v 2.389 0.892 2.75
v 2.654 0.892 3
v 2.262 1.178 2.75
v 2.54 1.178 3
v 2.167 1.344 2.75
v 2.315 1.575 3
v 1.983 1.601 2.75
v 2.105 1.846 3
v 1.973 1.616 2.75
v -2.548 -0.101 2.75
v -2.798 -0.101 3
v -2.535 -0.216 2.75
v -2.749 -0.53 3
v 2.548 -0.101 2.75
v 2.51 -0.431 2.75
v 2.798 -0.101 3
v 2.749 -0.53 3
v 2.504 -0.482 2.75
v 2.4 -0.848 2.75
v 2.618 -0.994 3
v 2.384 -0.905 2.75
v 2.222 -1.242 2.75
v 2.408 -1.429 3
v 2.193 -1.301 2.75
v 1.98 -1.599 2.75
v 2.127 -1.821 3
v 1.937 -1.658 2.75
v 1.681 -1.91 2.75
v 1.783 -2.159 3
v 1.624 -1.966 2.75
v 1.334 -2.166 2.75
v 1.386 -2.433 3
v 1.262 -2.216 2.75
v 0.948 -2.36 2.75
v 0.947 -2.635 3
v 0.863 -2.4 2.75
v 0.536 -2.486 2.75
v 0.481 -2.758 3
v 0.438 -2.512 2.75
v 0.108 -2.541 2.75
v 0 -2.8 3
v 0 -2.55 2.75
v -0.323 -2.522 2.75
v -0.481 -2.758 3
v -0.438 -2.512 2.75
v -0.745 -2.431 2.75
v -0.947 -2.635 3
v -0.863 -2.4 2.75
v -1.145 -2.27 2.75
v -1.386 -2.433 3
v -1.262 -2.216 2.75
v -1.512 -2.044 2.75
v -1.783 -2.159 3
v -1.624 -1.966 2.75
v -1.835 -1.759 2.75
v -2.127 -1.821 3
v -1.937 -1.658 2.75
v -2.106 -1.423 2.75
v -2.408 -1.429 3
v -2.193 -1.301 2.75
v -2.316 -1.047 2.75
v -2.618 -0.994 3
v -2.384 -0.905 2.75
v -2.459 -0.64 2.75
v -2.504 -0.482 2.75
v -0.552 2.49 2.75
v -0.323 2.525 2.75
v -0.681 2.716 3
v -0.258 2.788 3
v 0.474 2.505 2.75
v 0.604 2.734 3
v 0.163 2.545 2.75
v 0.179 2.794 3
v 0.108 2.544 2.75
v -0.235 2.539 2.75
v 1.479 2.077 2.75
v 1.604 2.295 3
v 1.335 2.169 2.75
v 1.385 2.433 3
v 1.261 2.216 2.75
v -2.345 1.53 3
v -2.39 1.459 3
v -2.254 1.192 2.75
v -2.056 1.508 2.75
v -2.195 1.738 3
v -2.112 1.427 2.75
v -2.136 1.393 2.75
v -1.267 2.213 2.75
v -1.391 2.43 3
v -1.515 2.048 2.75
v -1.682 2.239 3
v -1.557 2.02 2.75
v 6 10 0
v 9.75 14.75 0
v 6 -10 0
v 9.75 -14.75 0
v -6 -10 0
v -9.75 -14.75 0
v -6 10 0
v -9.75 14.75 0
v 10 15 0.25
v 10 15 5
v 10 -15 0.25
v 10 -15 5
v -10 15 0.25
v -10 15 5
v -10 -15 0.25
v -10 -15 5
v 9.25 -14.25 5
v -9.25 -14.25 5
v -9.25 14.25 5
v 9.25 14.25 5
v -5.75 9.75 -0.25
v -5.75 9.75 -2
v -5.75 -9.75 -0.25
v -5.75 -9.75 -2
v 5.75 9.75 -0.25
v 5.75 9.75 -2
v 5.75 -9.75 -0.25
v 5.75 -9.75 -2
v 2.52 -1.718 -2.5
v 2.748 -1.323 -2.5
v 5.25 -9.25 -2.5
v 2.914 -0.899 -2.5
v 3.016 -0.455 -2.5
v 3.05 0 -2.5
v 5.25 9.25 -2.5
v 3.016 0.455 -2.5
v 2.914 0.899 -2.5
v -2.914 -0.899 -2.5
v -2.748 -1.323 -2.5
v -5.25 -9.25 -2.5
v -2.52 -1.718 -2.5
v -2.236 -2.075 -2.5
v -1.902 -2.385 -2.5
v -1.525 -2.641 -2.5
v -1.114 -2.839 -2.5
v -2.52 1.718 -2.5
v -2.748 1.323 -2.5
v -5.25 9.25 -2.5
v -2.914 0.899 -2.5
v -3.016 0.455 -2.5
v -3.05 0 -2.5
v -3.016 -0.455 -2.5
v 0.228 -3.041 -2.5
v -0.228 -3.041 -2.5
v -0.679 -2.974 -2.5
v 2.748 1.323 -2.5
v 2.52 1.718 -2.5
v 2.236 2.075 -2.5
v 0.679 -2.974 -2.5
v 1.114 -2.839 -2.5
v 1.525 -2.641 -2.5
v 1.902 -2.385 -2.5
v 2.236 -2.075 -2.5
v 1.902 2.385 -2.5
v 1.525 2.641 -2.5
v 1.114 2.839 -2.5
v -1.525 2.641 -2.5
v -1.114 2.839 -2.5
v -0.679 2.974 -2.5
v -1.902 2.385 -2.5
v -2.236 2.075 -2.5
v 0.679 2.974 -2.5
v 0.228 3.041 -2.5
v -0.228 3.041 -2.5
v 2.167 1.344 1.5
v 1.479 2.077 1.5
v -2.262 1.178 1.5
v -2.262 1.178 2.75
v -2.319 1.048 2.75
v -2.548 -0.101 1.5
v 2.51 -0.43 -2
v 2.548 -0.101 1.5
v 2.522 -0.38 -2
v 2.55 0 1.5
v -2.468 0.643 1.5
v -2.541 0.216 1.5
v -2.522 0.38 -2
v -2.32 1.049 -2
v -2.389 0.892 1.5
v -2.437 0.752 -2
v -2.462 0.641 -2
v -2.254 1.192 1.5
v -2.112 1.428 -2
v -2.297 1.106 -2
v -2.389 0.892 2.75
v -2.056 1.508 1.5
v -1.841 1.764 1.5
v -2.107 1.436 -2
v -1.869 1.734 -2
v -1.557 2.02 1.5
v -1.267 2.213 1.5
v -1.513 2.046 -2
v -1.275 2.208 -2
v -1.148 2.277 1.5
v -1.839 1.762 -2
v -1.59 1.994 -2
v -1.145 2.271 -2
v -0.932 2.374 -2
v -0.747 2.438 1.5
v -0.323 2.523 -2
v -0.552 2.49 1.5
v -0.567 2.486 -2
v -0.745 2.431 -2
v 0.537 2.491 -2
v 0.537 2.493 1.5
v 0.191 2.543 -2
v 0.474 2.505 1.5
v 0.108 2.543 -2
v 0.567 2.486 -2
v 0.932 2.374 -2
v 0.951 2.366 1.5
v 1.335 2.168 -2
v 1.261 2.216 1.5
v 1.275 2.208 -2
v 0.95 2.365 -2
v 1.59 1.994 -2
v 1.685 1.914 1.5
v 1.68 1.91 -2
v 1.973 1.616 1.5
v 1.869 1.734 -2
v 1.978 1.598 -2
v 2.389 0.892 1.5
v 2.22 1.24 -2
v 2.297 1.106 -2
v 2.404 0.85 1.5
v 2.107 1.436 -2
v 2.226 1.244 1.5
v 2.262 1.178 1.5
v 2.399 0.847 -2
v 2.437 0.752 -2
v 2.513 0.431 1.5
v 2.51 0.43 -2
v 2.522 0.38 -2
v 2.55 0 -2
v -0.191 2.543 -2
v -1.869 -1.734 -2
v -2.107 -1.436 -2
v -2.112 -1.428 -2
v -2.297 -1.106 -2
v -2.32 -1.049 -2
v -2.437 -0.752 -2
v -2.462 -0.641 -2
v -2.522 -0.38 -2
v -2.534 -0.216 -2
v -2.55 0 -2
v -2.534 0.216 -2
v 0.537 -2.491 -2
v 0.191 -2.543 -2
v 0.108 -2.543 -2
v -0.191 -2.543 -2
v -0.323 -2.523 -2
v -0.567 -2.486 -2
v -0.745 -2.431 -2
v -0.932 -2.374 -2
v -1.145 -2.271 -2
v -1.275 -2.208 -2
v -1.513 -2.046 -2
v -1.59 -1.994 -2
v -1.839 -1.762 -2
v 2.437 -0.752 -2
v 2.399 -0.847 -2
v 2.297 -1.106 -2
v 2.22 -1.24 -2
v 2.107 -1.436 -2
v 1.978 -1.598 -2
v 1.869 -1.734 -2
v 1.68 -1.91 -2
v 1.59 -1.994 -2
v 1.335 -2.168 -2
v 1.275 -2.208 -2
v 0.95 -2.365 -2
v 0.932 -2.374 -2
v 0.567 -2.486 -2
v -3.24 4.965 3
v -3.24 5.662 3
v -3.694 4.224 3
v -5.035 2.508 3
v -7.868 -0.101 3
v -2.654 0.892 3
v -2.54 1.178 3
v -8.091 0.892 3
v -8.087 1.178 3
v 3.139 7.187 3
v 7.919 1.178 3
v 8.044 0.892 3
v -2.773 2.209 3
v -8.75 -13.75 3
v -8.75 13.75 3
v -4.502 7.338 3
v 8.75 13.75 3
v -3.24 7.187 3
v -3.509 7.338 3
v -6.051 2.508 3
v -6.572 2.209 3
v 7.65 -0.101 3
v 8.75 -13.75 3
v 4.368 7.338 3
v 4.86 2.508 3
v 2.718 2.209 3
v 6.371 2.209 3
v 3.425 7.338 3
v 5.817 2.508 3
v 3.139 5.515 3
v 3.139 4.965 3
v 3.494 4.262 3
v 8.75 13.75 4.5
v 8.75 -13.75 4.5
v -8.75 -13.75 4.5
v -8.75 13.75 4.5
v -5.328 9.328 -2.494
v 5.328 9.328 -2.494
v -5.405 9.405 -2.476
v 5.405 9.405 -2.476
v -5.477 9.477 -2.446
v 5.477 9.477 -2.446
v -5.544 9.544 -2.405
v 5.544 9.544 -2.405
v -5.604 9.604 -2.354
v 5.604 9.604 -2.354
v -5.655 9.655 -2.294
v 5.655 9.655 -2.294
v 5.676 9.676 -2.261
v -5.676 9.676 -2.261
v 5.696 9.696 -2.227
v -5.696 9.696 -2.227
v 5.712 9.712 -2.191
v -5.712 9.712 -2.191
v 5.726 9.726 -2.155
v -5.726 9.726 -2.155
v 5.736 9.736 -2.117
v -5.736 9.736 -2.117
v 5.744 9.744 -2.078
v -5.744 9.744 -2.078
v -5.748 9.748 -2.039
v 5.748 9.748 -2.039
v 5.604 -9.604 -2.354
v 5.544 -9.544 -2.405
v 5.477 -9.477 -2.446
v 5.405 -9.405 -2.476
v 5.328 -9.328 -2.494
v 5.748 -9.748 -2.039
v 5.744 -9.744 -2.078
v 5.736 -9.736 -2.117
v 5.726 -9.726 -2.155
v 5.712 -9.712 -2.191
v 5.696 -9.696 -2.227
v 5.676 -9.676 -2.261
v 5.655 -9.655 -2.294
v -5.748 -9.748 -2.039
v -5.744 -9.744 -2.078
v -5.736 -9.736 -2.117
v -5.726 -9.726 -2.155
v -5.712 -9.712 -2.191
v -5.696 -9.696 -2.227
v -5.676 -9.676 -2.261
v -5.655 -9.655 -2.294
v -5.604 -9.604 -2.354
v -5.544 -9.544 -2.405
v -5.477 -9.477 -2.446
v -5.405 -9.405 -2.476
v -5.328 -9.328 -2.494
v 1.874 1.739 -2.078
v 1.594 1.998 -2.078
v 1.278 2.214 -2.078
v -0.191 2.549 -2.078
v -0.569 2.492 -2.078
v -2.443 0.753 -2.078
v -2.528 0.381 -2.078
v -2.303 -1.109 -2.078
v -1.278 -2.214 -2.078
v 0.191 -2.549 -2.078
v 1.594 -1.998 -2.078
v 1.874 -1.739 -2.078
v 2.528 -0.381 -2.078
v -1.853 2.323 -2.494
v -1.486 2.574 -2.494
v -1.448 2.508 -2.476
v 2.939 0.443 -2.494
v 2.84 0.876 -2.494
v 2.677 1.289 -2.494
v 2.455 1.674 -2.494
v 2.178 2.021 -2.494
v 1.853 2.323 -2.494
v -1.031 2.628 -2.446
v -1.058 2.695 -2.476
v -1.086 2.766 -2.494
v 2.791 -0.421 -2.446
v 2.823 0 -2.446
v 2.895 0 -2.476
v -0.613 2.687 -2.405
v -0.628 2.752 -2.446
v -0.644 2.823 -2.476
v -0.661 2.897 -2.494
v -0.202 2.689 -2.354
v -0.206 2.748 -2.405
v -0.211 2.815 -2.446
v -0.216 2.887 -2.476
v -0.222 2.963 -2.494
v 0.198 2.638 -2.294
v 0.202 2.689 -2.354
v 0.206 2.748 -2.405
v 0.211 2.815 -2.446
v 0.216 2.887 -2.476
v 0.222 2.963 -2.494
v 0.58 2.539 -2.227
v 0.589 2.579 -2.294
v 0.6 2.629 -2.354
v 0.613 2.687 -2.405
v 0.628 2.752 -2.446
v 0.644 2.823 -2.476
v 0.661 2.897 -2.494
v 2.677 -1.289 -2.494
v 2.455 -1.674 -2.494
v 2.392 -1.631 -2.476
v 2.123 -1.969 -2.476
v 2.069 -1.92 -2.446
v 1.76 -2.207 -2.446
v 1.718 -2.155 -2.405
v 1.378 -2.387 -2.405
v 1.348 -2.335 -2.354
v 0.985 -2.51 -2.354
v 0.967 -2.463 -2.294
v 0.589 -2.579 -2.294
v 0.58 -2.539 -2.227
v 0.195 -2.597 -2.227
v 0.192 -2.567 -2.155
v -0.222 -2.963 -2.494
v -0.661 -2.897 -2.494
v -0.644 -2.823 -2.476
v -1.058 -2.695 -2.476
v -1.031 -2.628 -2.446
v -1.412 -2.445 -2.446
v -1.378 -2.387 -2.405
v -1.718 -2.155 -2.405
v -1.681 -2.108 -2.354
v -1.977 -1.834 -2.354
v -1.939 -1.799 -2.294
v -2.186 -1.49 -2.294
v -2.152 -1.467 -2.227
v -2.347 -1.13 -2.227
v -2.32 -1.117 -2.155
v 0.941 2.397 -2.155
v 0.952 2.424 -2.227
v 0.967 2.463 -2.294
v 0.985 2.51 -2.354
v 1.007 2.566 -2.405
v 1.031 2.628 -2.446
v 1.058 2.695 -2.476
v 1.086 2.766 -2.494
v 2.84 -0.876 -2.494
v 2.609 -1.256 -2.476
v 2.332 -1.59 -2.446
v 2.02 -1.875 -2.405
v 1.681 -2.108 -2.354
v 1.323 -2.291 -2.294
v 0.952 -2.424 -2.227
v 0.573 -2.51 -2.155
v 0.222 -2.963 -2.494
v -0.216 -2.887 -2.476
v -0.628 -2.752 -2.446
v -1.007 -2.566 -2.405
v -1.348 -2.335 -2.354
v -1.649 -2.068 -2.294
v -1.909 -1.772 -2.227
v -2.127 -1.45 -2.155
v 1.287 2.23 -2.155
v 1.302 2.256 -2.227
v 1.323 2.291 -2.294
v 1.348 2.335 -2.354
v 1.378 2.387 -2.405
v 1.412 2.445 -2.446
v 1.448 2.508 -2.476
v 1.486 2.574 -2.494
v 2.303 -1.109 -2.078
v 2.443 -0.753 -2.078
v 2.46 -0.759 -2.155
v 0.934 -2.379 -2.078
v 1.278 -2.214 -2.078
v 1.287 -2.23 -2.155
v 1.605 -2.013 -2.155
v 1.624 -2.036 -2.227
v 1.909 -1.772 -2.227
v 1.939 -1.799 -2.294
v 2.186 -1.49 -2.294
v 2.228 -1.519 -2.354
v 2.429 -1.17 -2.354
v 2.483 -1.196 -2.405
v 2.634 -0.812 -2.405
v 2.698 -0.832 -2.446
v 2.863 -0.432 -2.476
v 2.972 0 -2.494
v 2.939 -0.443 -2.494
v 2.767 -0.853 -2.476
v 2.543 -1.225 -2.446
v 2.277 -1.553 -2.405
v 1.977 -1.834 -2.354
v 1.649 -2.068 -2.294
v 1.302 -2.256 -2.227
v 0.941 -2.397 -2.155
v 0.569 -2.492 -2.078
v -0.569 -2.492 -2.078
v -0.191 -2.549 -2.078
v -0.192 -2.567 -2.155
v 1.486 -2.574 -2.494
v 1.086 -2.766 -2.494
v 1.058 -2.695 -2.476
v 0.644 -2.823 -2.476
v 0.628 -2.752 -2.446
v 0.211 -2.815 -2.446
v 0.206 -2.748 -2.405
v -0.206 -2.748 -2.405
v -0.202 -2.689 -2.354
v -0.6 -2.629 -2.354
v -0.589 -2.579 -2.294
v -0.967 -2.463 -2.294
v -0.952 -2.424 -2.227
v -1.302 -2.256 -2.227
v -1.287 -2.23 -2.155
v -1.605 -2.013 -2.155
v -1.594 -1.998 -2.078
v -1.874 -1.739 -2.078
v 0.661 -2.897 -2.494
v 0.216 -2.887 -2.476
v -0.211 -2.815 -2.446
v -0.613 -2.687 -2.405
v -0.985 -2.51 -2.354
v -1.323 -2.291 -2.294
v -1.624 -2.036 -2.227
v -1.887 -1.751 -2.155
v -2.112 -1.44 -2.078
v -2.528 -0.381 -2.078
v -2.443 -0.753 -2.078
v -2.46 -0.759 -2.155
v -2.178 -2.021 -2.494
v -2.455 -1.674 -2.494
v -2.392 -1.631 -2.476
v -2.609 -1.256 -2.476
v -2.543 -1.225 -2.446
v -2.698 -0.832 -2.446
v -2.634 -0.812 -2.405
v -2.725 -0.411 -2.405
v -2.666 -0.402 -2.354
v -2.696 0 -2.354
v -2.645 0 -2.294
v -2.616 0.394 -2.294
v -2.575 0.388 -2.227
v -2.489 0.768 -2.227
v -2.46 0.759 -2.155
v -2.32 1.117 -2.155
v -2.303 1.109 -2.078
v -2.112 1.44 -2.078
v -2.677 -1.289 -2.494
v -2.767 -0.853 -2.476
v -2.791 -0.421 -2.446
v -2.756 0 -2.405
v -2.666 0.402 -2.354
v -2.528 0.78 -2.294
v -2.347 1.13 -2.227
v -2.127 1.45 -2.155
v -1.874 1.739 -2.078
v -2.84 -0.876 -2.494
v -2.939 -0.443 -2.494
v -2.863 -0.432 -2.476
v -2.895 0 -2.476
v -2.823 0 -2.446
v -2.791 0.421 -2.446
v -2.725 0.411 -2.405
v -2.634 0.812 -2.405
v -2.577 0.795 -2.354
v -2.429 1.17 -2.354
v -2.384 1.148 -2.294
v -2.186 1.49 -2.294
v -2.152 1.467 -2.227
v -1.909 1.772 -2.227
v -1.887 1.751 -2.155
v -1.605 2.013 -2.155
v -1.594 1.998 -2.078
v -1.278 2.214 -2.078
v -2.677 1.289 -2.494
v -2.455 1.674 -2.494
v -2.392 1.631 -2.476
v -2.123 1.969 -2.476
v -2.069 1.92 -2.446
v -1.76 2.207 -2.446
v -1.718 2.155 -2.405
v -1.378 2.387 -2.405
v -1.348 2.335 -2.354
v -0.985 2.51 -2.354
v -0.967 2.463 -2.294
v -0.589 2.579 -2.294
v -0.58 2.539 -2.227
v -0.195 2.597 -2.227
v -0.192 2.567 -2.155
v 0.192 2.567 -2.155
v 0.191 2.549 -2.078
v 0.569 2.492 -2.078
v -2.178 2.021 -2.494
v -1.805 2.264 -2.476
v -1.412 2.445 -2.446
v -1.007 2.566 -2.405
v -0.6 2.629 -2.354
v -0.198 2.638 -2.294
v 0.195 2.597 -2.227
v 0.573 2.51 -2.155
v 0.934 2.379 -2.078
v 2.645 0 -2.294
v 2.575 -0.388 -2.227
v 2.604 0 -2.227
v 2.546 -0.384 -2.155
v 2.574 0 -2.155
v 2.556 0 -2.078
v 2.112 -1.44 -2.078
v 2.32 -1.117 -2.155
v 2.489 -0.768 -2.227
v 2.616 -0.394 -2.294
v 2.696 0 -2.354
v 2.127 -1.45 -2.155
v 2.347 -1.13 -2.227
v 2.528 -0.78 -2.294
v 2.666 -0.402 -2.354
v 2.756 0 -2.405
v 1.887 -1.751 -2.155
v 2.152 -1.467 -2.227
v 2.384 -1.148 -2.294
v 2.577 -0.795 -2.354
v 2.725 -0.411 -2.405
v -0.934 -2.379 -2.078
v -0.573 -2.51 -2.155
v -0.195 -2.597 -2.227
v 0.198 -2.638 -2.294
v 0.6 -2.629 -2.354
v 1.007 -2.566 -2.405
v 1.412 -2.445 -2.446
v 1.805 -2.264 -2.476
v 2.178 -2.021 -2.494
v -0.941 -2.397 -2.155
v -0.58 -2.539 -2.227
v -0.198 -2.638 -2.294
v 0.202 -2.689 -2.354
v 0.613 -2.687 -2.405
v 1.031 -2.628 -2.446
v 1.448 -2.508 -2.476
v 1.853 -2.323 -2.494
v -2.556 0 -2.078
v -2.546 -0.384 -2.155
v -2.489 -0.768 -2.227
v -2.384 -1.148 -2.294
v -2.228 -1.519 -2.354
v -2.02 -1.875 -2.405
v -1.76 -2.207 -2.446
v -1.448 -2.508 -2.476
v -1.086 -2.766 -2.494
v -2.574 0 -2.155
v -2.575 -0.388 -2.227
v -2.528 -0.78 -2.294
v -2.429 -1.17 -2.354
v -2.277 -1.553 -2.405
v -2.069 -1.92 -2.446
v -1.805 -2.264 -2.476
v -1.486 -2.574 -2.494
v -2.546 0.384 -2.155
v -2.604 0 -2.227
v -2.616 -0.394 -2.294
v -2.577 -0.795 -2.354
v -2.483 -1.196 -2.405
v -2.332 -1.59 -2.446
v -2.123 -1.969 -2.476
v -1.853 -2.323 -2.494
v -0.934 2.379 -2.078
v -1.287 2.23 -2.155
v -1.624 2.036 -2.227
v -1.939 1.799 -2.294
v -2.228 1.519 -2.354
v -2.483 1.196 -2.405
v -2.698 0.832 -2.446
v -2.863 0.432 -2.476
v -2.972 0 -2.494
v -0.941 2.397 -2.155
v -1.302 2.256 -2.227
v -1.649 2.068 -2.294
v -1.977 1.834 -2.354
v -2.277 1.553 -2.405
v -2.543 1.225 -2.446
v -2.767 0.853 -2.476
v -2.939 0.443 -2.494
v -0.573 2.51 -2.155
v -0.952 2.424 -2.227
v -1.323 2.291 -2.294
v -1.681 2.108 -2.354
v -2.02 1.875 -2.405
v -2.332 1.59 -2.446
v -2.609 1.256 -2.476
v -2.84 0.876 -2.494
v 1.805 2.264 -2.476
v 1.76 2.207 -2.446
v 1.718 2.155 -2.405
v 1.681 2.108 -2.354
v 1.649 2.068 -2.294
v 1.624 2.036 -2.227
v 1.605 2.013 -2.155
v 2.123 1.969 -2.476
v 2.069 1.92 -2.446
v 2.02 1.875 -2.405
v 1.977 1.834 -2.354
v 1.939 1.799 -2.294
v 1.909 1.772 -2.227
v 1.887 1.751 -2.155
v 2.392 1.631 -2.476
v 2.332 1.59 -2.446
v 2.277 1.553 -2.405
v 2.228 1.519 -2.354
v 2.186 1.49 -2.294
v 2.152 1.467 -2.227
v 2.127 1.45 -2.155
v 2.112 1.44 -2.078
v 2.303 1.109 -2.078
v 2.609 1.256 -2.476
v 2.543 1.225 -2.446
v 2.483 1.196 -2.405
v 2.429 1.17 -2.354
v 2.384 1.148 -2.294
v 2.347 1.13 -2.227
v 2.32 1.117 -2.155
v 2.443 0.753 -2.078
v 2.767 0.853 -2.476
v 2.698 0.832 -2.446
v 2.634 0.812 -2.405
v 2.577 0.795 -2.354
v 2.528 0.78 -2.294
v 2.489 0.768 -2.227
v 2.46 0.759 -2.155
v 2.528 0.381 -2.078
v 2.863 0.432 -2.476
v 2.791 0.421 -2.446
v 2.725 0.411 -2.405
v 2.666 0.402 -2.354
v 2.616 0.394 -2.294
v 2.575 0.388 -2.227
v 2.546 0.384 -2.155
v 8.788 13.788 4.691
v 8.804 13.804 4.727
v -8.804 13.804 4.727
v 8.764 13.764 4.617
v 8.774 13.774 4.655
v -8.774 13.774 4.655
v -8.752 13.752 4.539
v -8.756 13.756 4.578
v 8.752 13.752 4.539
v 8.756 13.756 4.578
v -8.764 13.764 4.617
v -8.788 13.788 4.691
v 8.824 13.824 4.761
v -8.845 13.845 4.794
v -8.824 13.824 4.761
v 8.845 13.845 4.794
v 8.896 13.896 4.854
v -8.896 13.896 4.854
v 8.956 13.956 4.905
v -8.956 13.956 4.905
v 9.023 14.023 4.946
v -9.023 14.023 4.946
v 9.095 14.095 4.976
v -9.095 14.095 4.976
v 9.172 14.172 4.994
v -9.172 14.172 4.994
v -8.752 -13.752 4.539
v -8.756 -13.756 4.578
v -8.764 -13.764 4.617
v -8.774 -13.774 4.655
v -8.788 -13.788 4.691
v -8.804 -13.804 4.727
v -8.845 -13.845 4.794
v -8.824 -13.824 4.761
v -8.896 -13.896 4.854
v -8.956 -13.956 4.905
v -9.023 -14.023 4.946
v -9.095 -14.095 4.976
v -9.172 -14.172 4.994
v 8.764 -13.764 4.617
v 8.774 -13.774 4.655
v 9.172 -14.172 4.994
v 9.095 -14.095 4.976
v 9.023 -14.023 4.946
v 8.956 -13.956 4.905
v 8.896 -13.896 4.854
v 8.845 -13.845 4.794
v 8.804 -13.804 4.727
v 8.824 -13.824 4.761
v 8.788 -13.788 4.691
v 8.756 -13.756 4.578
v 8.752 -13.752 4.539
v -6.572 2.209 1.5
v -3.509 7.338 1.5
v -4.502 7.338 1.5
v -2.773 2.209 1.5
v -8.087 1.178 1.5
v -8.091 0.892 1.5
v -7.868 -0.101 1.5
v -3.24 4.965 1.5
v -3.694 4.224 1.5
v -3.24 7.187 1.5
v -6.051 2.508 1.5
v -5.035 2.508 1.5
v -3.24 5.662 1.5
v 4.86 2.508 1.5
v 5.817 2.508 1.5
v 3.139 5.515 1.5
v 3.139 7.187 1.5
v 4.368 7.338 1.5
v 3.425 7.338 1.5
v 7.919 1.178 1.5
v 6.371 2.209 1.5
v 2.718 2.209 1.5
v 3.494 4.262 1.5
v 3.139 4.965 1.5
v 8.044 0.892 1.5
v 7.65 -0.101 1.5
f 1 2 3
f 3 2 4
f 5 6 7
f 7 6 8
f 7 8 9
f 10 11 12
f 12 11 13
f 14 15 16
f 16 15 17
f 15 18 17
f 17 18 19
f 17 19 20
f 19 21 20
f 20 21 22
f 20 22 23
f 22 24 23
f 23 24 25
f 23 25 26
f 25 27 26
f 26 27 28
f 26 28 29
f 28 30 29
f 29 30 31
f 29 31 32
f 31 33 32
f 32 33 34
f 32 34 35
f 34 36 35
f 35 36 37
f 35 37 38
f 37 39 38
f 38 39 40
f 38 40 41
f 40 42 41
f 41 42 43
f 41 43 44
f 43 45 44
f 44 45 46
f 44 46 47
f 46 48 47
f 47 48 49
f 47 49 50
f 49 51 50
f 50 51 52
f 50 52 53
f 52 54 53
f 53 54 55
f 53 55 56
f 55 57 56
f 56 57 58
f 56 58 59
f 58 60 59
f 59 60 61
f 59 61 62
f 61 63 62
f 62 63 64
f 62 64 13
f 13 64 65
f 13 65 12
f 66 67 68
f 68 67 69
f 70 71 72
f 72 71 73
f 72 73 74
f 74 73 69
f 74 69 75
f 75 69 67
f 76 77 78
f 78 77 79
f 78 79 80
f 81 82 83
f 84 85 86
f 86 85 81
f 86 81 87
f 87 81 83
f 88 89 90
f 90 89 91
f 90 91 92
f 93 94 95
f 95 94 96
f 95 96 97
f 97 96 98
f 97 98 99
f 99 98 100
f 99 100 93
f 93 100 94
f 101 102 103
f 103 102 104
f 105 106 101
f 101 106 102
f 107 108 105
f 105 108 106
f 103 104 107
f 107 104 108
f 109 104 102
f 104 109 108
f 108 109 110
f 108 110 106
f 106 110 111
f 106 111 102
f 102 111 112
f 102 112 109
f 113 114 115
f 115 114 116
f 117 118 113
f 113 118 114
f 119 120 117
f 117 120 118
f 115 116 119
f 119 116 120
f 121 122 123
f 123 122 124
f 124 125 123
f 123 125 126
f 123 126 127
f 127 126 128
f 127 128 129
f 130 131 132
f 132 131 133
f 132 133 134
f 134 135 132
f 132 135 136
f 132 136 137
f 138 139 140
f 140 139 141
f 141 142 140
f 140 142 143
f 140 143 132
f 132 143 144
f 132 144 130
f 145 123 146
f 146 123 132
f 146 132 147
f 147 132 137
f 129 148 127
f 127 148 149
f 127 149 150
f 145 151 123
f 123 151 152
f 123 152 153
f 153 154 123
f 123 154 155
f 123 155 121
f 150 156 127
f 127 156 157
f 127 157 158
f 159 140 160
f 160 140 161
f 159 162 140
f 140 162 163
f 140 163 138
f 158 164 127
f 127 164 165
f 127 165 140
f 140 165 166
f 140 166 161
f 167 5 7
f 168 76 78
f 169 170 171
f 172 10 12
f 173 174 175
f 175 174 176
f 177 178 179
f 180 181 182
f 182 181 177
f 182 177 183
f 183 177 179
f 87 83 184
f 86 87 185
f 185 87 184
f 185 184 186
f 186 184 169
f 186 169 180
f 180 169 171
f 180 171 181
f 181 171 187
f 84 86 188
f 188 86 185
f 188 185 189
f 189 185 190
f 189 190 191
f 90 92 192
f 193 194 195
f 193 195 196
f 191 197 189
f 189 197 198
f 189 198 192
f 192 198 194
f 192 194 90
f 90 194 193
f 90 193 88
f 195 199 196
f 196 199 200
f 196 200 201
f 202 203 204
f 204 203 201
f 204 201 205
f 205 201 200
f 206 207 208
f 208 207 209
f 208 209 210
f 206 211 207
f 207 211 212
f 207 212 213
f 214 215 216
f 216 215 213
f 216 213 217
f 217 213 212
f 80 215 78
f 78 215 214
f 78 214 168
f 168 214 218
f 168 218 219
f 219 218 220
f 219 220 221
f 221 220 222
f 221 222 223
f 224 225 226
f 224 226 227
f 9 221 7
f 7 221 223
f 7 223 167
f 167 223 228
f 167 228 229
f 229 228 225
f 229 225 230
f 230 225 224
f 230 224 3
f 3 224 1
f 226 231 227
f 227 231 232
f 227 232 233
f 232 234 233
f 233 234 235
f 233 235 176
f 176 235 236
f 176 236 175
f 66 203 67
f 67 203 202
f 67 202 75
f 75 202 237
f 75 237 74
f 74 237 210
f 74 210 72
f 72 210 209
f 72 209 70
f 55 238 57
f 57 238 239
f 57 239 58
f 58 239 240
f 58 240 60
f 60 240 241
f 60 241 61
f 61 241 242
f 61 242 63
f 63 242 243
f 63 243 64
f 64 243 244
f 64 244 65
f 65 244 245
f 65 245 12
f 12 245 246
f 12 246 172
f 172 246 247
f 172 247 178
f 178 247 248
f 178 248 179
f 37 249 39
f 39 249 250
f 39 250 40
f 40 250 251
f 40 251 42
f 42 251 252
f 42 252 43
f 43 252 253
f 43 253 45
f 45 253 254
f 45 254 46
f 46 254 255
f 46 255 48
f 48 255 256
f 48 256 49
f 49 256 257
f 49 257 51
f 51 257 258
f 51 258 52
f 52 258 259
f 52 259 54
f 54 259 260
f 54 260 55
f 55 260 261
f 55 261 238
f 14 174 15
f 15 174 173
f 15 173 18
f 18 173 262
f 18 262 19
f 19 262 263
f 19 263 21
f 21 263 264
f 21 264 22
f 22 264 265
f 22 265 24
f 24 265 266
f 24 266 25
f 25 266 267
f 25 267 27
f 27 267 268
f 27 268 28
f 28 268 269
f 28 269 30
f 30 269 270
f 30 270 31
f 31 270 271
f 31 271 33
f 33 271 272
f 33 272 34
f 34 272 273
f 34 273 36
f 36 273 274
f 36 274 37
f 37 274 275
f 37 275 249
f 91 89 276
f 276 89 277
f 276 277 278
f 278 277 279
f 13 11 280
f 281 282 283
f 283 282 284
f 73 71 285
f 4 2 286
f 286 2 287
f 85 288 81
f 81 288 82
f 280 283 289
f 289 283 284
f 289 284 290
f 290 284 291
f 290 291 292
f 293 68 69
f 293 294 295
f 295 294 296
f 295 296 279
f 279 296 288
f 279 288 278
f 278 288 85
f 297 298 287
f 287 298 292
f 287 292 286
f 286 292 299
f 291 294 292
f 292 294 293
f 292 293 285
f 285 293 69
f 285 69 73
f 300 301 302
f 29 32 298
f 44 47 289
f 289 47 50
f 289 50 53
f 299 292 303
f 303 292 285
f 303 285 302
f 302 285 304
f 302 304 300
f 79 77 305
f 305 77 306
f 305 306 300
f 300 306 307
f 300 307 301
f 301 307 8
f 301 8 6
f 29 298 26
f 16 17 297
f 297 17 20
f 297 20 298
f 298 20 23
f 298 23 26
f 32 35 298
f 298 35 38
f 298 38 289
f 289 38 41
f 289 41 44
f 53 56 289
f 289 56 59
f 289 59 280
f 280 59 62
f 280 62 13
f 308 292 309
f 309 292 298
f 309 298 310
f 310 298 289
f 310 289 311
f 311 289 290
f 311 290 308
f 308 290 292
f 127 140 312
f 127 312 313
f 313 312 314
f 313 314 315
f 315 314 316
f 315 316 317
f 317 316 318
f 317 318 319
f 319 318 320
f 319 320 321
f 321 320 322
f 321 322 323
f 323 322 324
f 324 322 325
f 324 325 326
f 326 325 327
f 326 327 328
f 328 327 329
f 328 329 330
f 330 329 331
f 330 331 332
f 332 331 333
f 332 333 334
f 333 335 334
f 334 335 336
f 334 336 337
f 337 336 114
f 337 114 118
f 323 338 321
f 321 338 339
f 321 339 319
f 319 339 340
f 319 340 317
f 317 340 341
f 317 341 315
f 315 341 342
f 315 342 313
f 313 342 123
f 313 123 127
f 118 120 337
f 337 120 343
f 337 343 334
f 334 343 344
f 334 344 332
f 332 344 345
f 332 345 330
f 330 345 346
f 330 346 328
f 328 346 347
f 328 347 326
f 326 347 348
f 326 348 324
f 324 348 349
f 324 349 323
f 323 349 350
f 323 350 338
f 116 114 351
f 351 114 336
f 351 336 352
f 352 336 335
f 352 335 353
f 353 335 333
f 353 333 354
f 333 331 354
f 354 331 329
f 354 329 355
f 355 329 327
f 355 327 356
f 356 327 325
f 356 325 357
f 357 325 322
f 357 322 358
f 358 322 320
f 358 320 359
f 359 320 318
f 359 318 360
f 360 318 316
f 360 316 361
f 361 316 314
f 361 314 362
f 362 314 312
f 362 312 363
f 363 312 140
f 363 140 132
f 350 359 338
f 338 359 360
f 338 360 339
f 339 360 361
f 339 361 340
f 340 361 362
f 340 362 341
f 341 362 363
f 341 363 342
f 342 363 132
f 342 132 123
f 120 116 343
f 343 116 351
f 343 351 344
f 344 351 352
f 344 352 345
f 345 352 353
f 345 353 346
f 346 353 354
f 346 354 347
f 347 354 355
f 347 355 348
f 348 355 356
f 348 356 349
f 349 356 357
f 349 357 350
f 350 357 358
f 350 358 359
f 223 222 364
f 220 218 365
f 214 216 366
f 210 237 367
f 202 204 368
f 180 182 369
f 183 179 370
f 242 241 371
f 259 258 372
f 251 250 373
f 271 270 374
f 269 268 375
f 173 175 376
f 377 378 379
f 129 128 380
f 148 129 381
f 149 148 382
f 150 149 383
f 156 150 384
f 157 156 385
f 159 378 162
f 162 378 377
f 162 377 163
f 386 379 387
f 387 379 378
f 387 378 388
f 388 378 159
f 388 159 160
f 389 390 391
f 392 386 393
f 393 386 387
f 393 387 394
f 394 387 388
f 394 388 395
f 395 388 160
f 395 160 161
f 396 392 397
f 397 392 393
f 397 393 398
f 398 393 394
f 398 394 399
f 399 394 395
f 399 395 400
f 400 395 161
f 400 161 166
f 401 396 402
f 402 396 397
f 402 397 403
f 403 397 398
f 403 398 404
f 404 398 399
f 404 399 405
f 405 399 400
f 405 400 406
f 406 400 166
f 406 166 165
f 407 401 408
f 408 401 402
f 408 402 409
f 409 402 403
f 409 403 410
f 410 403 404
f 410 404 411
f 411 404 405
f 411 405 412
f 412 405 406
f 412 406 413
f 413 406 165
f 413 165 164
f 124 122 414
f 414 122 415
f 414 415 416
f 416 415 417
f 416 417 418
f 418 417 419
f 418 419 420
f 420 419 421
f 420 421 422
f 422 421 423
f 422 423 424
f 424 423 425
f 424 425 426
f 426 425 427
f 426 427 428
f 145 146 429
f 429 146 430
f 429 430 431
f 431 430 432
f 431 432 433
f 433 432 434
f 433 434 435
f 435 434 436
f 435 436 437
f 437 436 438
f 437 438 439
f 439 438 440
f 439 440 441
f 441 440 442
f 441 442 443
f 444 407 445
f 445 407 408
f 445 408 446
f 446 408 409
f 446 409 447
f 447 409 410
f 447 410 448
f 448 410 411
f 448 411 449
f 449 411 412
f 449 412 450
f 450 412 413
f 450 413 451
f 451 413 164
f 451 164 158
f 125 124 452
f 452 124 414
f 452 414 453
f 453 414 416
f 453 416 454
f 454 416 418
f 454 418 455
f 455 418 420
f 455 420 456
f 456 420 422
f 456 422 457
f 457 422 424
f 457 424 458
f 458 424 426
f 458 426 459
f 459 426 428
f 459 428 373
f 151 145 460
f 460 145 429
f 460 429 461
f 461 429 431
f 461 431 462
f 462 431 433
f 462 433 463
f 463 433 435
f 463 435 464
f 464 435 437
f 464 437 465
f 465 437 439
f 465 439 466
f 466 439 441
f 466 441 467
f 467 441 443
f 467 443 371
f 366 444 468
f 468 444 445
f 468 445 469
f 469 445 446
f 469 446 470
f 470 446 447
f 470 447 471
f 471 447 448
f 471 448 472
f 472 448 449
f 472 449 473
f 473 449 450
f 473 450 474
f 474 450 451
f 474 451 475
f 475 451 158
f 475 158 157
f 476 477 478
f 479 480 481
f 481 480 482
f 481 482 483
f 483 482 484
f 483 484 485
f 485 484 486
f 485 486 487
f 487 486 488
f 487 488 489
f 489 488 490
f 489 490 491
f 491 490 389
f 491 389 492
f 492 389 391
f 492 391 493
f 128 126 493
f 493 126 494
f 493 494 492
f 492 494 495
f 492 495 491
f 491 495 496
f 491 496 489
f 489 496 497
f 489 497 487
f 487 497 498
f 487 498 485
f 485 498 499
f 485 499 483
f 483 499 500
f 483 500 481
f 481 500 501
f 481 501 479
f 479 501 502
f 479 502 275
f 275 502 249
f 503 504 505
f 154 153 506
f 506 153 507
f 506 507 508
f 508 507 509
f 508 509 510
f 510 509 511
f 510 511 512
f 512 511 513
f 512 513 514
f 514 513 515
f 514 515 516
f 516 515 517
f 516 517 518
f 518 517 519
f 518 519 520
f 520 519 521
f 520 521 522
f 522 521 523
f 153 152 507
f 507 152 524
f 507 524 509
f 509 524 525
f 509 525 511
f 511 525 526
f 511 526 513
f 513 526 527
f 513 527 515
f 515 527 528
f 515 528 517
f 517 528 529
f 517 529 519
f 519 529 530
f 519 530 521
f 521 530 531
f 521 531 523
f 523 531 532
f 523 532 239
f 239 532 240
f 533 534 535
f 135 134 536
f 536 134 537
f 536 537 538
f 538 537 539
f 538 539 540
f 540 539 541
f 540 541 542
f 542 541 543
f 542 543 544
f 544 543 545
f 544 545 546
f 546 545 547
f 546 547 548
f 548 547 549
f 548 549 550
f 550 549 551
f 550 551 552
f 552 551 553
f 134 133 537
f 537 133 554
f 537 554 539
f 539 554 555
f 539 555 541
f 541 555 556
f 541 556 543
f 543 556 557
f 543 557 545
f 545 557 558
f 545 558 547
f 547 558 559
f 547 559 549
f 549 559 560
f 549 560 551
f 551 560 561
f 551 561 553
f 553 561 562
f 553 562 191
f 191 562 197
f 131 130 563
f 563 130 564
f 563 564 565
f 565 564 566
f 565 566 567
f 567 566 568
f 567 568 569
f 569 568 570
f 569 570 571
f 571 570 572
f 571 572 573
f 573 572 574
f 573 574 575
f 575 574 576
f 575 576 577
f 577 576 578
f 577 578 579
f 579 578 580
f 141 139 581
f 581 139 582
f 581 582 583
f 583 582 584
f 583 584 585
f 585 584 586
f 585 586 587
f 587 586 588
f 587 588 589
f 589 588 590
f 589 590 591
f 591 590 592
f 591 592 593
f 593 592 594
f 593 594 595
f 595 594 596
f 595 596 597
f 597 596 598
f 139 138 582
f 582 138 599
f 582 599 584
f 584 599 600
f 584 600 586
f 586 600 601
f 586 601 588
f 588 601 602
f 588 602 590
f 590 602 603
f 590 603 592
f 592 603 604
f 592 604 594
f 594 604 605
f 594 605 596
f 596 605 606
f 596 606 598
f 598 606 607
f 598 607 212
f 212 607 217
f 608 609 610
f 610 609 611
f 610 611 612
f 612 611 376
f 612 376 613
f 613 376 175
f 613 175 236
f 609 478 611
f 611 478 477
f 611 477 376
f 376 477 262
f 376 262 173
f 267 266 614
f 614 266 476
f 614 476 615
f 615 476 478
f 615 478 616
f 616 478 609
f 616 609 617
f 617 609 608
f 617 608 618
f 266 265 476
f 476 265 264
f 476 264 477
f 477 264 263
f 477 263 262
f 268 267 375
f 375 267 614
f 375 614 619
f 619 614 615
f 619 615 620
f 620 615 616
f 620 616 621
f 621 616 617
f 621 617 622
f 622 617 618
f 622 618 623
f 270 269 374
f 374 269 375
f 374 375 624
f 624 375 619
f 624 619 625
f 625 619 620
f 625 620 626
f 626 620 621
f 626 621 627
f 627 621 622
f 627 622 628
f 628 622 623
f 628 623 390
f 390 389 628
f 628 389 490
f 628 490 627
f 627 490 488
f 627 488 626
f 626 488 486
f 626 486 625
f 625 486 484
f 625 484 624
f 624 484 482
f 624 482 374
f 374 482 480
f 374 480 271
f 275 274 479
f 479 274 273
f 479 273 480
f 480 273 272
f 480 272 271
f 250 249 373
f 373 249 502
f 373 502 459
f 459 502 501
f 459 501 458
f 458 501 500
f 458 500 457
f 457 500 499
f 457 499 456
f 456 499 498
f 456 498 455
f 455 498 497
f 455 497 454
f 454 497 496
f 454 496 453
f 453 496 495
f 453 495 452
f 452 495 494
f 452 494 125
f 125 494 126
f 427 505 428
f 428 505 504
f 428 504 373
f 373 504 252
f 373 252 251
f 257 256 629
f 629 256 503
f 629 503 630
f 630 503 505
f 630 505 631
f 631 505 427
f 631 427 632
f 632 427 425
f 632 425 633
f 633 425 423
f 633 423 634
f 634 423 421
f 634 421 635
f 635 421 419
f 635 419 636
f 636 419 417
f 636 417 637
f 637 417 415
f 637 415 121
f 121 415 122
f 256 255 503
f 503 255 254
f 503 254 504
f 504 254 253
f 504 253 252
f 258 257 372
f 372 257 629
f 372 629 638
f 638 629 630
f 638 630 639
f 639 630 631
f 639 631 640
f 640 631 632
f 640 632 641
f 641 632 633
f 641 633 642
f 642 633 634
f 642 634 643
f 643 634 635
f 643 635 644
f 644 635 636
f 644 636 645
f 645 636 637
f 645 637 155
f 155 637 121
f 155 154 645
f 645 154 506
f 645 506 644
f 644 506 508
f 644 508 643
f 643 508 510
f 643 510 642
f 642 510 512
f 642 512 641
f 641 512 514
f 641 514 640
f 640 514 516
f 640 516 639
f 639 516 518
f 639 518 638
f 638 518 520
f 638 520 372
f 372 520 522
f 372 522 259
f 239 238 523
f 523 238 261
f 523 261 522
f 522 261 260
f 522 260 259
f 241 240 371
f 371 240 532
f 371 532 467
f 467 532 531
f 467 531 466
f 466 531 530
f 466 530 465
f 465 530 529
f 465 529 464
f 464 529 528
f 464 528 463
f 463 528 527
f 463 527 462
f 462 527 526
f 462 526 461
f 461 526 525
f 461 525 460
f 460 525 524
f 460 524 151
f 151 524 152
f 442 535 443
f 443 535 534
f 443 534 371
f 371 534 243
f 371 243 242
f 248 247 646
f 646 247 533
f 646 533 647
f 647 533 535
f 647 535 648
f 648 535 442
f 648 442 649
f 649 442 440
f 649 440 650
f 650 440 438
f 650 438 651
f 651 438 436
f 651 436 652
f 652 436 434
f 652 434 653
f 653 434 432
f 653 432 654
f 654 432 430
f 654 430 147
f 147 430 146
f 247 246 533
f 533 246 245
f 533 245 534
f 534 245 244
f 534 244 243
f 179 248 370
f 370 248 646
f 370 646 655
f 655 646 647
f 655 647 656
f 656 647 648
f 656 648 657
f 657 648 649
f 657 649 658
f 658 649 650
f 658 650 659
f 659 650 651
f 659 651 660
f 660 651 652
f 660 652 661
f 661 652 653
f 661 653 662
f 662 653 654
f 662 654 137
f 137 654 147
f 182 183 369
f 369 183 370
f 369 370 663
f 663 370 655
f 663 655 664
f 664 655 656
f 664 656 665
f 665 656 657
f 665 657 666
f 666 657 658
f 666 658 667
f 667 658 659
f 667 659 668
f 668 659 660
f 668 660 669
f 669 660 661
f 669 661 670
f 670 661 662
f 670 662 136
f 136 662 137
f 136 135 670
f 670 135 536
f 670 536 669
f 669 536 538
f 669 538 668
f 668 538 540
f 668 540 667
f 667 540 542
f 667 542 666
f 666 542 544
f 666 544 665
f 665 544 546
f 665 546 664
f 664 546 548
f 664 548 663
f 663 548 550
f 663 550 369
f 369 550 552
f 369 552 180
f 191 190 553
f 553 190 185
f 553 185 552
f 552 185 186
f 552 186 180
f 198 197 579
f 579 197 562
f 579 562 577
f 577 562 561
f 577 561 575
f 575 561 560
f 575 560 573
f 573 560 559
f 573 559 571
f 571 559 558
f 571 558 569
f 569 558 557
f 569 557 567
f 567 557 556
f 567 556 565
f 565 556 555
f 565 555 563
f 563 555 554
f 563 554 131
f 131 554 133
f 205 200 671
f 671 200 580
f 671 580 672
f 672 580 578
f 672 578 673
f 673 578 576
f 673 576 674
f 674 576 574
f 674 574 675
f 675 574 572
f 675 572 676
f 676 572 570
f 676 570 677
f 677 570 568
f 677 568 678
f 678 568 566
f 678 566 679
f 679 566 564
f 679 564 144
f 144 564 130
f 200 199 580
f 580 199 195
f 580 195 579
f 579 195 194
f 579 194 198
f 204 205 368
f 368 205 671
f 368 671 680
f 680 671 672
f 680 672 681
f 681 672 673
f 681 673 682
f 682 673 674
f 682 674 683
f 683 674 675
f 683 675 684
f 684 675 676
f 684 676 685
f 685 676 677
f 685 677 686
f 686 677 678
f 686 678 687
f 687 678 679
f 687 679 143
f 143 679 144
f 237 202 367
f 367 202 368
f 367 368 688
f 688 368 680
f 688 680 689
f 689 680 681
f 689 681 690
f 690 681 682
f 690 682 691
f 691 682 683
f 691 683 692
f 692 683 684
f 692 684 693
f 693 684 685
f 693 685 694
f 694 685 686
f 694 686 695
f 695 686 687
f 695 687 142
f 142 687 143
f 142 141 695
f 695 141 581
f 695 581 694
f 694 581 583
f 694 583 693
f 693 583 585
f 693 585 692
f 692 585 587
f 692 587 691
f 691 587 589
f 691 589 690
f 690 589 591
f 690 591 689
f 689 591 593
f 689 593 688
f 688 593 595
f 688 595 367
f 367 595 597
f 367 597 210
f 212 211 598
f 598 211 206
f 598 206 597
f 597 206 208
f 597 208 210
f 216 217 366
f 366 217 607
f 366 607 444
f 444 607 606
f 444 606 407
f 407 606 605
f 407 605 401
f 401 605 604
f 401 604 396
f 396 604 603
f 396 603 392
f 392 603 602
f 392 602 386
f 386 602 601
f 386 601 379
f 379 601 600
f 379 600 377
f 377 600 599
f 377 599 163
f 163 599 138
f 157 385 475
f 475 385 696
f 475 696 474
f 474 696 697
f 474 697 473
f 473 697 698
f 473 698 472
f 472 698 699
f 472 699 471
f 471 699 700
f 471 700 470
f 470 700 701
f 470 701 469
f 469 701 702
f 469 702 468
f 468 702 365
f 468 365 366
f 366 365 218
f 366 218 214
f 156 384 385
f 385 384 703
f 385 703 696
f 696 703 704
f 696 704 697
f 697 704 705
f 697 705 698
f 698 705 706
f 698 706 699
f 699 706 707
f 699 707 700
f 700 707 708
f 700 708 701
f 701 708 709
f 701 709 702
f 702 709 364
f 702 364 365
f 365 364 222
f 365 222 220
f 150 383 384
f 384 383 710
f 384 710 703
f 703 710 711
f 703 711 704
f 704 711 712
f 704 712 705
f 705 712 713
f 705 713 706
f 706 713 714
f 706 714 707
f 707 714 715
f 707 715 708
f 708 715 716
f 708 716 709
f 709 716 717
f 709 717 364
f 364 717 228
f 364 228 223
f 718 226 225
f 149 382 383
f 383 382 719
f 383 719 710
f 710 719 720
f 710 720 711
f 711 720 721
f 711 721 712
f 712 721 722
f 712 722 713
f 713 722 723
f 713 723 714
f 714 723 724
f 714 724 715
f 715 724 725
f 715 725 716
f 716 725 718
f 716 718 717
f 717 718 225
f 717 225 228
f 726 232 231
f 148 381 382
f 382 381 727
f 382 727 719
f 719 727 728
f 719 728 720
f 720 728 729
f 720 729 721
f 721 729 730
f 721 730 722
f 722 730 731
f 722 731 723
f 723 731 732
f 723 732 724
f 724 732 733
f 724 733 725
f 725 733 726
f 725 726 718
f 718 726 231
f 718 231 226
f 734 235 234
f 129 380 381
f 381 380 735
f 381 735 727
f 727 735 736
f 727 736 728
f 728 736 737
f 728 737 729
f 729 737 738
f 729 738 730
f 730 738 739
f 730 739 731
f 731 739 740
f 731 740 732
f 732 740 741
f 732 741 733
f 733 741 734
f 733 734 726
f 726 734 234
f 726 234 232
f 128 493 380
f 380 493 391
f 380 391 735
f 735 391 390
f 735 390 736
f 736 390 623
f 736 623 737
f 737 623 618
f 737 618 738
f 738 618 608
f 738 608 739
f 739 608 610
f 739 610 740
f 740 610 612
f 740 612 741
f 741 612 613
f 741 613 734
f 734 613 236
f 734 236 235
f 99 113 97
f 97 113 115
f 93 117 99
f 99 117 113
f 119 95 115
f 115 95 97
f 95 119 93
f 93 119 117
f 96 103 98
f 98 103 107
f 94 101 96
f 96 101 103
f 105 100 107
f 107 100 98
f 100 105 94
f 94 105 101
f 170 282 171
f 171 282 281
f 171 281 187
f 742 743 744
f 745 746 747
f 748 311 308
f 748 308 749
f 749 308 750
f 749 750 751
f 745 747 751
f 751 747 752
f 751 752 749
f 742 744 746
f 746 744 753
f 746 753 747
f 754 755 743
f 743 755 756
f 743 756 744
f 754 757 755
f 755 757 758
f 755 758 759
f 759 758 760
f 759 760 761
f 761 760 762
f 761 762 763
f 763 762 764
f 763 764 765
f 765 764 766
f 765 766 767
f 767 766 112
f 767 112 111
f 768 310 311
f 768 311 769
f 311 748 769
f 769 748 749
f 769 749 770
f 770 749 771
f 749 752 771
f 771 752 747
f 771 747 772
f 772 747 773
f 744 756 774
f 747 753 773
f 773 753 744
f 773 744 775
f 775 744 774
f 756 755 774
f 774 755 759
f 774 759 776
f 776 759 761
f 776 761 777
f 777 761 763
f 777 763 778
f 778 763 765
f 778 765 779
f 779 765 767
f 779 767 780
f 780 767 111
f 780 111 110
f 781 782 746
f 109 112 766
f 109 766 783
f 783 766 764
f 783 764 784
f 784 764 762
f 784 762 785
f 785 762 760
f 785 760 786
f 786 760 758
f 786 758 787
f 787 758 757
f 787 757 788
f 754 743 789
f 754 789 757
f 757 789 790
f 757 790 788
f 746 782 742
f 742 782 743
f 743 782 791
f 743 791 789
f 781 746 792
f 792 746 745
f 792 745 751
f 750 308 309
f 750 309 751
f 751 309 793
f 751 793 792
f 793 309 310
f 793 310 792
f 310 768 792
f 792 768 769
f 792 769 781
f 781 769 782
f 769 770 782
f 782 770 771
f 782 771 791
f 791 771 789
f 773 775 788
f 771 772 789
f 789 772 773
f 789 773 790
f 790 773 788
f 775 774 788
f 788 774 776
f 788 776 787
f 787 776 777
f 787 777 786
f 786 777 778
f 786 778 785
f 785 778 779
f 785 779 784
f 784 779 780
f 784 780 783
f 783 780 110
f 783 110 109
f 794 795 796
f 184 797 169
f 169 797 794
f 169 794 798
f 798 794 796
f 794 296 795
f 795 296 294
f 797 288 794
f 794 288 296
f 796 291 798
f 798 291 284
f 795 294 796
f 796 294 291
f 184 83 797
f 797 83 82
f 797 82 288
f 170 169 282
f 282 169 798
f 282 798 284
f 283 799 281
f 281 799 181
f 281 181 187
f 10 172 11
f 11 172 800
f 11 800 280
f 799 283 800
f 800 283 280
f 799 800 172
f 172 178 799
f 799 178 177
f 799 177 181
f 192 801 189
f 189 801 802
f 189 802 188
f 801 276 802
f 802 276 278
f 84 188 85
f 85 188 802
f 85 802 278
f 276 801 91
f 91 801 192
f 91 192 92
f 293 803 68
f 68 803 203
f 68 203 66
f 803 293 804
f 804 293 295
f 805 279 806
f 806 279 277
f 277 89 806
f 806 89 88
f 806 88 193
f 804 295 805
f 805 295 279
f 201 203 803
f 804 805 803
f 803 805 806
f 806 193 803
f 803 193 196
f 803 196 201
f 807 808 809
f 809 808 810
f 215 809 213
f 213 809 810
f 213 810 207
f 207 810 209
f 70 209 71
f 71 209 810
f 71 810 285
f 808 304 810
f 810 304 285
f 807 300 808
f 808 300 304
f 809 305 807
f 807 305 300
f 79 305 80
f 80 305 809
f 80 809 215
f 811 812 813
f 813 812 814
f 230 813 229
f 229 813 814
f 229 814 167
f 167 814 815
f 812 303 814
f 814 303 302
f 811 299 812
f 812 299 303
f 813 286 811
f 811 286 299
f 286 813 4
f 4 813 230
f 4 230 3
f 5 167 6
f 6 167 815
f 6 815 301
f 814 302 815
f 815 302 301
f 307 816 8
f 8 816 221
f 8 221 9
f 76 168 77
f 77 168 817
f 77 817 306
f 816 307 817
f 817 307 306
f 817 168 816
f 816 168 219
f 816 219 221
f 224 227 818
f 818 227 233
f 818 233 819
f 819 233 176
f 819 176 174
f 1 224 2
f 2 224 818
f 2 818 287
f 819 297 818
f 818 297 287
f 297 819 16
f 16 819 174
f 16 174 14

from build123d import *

# Parameters (mm, degrees)
SKETCH1_W           = 20
SKETCH1_H           = 30
BOSS_EXTRUDE1_DEPTH = 5
SKETCH4_W           = 11.5
SKETCH4_H           = 19.5
BOSS_EXTRUDE2_DEPTH = 2.5
SKETCH2_R           = 2.55
CUT_EXTRUDE1_DEPTH  = 8.5
SKETCH3_W           = 17.5
SKETCH3_H           = 27.5
CUT_EXTRUDE2_DEPTH  = 2
FILLET1_R           = 0.5
CHAMFER1_SIZE       = 0.25
CHAMFER2_SIZE       = 0.25
FILLET2_R           = 0.5
CUT_EXTRUDE5_DEPTH  = 3.5


with BuildPart() as part:
    # Sketch1 → Boss-Extrude1 (new body)
    with BuildSketch(Plane.XY):
        Rectangle(SKETCH1_W, SKETCH1_H)
    extrude(amount=BOSS_EXTRUDE1_DEPTH)

    # Sketch4 → Boss-Extrude2 (add)
    with BuildSketch(Plane(origin=(0, 0, 0), x_dir=(-1, 0, 0), z_dir=(0, 0, -1))):
        Rectangle(SKETCH4_W, SKETCH4_H)
    extrude(amount=BOSS_EXTRUDE2_DEPTH)

    # Sketch2 → Cut-Extrude1 (cut, through all)
    with BuildSketch(Plane.XY.offset(5)):
        Circle(SKETCH2_R)
    extrude(amount=-CUT_EXTRUDE1_DEPTH, mode=Mode.SUBTRACT)

    # Sketch3 → Cut-Extrude2 (cut)
    with BuildSketch(Plane.XY.offset(5)):
        Rectangle(SKETCH3_W, SKETCH3_H)
    extrude(amount=-CUT_EXTRUDE2_DEPTH, mode=Mode.SUBTRACT)

    # Fillet1
    fillet1_edges = [part.edges().sort_by_distance(p)[0] for p in [
        (-5.75, 0, -2.5),
        (0, 9.75, -2.5),
        (5.75, 0, -2.5),
        (0, -9.75, -2.5),
        (-2.55, 0, -2.5),
    ]]
    fillet(fillet1_edges, radius=FILLET1_R)

    # Chamfer1
    chamfer1_edges = [part.edges().sort_by_distance(p)[0] for p in [
        (-5.75, 0, 0),
        (0, 9.75, 0),
        (5.75, 0, 0),
        (0, -9.75, 0),
        (0, -15, 0),
        (-10, 0, 0),
        (0, 15, 0),
        (10, 0, 0),
    ]]
    chamfer(chamfer1_edges, length=CHAMFER1_SIZE)

    # Chamfer2
    chamfer2_edges = [part.edges().sort_by_distance(p)[0] for p in [
        (-2.55, 0, 3),
    ]]
    chamfer(chamfer2_edges, length=CHAMFER2_SIZE)

    # Fillet2
    fillet2_edges = [part.edges().sort_by_distance(p)[0] for p in [
        (8.75, 0, 5),
        (0, 13.75, 5),
        (-8.75, 0, 5),
        (0, -13.75, 5),
    ]]
    fillet(fillet2_edges, radius=FILLET2_R)

    # Mobious Logo → Cut-Extrude5 (cut)
    with BuildSketch(Plane(origin=(0, 0, 5), x_dir=(-1, 0, 0), z_dir=(0, 0, 1))):
        Polygon((3.509190245, -7.338202372), (4.502229849, -7.338202372), (8.08727113, -1.177990592), (2.246851765, -1.177990592), (2.773304458, -2.208730349), (6.572464955, -2.208730349), align=None)
        Polygon((3.694333222, -4.224434122), (3.239891369, -4.96500603), (0.344928456, 0.101179067), (7.868465794, 0.101179067), (8.091043636, -0.891860536), (1.68474111, -0.891860536), align=None)
        Polygon((6.050698383, -2.50765379), (3.239891369, -7.186721754), (0.041967221, -1.598400594), (-3.139125747, -7.186721754), (-5.816728556, -2.50765379), (-4.85985244, -2.50765379), (-3.139125747, -5.514596088), (0, 0), (3.239891369, -5.661658206), (5.035275167, -2.50765379), align=None)
        Polygon((-3.425255803, -7.338202372), (-4.367801867, -7.338202372), (-7.91918079, -1.177990592), (-2.061930245, -1.177990592), (-2.718346254, -2.208730349), (-6.370712255, -2.208730349), align=None)
        Polygon((-3.139125747, -4.96500603), (-0.227331655, 0.101179067), (-7.649881914, 0.101179067), (-8.043673481, -0.891860536), (-1.556994853, -0.891860536), (-3.494124276, -4.262241786), align=None)
    extrude(amount=-CUT_EXTRUDE5_DEPTH, mode=Mode.SUBTRACT)


solid = part.part
